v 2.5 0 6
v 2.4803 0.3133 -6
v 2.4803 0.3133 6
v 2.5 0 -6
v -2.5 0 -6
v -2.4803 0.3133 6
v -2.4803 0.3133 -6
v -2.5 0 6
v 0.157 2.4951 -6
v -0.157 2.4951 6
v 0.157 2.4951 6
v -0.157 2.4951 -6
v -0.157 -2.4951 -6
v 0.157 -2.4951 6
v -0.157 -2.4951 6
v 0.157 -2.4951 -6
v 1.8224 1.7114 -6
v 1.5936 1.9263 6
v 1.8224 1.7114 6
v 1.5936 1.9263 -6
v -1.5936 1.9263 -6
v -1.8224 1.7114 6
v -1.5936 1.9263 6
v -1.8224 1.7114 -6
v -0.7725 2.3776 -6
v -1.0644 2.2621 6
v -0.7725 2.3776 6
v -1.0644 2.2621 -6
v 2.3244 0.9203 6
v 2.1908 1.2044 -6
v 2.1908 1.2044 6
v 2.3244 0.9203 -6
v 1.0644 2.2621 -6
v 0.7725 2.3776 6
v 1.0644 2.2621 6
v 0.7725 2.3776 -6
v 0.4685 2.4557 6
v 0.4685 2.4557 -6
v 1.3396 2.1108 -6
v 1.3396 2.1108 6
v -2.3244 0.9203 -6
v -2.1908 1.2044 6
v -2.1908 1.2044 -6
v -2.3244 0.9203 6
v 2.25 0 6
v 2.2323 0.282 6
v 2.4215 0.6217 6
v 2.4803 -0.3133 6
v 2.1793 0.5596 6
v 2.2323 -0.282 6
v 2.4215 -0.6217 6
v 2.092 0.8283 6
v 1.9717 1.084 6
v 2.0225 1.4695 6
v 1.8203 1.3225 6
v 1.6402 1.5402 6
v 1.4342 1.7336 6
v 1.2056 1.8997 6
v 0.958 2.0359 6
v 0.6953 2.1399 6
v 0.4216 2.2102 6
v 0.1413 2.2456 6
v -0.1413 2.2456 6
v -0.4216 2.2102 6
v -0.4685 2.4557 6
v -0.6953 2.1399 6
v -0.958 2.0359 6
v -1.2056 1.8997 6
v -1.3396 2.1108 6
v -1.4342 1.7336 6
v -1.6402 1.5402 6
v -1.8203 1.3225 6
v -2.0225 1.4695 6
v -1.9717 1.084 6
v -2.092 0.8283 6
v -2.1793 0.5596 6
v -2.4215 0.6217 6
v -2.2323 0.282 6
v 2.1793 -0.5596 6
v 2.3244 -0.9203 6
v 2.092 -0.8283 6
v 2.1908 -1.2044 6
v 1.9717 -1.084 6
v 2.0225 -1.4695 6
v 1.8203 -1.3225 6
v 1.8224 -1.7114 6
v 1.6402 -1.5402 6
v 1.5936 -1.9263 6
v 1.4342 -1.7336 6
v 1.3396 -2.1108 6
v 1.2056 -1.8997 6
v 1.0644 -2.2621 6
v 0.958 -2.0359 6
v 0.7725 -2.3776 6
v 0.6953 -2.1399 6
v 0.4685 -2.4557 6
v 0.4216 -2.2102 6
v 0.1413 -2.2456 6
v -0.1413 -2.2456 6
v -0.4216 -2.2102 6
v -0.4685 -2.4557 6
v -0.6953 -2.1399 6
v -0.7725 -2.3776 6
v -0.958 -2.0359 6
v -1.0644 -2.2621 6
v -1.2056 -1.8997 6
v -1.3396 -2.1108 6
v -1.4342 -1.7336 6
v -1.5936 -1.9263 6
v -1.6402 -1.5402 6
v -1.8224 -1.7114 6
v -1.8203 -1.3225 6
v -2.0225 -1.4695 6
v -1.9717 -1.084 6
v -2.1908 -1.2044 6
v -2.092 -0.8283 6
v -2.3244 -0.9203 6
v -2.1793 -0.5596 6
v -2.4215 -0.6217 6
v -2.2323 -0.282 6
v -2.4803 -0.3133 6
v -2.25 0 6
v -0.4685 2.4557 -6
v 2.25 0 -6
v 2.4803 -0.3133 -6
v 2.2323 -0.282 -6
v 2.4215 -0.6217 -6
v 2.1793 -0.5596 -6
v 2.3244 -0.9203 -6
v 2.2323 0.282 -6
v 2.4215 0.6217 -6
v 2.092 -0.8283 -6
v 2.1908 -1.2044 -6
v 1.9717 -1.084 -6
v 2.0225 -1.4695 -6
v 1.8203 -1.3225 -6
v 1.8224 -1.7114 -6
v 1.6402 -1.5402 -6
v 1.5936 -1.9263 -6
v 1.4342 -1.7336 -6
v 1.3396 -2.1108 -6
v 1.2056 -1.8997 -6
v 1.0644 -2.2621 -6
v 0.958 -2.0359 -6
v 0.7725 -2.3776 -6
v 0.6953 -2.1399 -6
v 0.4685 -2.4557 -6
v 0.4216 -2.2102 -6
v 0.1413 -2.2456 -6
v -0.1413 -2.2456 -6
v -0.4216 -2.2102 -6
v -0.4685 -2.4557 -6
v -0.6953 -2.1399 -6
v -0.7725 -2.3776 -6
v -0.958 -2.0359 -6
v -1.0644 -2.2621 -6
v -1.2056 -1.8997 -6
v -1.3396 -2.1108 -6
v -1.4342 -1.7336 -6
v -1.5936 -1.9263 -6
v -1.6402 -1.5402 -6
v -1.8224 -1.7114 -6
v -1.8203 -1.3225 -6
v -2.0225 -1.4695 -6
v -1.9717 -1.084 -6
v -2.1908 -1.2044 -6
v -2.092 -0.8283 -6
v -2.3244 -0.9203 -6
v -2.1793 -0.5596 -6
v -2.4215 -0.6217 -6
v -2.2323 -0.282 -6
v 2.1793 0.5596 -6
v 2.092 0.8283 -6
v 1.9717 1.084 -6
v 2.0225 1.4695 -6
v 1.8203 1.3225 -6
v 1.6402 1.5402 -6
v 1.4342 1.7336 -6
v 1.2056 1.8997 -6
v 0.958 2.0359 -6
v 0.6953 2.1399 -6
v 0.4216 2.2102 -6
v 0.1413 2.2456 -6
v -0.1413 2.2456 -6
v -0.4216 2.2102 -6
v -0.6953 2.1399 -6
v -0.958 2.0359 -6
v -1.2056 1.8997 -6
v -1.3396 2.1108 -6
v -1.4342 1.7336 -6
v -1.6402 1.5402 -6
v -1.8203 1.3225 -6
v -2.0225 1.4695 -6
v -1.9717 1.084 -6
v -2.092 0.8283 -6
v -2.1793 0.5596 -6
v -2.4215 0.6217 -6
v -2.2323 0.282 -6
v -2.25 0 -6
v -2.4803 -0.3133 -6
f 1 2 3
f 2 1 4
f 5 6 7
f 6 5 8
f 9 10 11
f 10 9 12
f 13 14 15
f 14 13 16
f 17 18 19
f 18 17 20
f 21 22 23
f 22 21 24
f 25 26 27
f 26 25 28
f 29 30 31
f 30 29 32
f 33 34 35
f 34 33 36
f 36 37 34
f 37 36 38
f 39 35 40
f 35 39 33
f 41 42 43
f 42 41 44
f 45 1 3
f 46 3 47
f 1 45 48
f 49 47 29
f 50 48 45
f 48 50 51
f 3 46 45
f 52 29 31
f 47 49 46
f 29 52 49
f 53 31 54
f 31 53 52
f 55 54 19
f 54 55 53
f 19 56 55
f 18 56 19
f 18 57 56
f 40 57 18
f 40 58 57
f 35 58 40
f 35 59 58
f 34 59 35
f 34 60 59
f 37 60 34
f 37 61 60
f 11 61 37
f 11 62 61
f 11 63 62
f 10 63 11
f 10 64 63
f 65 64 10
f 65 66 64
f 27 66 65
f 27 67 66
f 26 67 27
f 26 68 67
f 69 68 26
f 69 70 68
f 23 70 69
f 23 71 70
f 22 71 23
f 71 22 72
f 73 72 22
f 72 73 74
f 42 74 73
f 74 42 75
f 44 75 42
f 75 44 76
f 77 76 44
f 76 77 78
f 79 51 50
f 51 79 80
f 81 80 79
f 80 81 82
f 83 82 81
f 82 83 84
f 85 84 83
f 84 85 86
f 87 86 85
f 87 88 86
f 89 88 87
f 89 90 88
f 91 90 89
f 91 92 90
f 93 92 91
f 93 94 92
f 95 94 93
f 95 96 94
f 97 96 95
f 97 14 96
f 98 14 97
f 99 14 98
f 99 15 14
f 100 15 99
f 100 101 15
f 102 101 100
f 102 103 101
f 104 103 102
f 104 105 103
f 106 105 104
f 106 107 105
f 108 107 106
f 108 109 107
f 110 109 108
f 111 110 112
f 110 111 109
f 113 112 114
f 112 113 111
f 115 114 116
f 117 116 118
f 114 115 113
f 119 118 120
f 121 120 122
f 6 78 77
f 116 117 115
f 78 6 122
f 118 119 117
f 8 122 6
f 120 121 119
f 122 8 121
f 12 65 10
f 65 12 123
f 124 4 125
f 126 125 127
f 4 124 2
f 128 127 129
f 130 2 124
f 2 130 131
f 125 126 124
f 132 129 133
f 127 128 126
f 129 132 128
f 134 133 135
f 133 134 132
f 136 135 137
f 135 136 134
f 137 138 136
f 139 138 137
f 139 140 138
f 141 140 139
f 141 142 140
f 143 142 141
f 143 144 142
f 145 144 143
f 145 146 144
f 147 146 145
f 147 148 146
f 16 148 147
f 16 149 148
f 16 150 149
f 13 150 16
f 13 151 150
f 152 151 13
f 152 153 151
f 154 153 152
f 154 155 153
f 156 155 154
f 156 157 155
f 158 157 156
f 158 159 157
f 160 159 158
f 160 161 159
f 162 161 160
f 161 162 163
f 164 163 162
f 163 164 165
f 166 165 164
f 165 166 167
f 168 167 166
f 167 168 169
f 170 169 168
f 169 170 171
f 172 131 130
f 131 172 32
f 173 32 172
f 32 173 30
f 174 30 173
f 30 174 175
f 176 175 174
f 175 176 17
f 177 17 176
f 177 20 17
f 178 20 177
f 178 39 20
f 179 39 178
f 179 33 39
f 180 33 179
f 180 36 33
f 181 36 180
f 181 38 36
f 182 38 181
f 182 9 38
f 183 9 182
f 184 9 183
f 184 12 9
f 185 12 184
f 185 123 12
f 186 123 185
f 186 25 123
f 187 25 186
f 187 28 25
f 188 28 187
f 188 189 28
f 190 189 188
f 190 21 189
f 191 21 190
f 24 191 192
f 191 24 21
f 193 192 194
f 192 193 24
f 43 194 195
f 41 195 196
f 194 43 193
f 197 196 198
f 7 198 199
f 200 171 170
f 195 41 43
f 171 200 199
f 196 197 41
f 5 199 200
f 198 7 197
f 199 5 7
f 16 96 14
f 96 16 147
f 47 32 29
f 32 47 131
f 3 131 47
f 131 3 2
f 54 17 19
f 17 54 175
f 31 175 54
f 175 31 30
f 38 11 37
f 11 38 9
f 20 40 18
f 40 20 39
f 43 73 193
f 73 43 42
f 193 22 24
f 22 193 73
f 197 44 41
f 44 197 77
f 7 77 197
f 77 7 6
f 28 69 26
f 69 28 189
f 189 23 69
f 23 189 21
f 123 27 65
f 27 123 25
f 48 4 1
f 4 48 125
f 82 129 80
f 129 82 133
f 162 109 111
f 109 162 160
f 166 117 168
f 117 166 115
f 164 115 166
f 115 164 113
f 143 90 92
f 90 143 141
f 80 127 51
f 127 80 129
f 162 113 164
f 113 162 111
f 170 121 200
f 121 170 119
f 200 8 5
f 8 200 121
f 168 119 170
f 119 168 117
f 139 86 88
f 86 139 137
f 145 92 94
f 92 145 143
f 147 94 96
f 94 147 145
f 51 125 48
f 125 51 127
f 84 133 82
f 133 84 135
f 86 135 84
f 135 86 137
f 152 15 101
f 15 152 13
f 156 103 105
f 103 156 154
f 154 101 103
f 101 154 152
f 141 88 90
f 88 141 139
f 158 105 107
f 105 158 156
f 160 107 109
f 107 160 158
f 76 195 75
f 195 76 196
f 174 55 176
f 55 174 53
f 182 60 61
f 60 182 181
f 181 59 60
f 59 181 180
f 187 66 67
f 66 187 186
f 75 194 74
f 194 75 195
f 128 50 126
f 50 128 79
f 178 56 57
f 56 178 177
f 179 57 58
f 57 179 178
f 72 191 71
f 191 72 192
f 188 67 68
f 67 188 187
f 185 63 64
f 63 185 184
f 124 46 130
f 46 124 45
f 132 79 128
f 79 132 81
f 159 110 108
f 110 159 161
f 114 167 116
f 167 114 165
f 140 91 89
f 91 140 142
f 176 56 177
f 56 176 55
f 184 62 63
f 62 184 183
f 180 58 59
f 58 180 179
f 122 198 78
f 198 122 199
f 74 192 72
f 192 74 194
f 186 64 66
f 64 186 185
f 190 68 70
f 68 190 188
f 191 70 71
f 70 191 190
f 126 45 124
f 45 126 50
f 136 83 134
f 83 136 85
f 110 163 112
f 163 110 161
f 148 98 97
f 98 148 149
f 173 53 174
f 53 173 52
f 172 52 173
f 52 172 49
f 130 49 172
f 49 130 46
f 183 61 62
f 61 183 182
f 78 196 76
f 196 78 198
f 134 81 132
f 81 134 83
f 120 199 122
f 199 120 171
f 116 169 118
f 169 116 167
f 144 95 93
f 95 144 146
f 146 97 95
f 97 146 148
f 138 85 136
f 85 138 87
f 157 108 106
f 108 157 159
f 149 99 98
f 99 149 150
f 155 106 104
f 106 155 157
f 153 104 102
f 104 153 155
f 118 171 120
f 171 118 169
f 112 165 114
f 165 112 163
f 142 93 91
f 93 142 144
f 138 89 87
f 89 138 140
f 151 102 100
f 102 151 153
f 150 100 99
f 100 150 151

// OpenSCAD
$fn = 50;


difference() {
	union() {
		translate(v = [0, 0, -6.0000000000]) {
			cylinder(h = 12, r = 2.5000000000);
		}
	}
	union() {
		translate(v = [0, 0, -100.0000000000]) {
			cylinder(h = 200, r = 2.2500000000);
		}
	}
}
